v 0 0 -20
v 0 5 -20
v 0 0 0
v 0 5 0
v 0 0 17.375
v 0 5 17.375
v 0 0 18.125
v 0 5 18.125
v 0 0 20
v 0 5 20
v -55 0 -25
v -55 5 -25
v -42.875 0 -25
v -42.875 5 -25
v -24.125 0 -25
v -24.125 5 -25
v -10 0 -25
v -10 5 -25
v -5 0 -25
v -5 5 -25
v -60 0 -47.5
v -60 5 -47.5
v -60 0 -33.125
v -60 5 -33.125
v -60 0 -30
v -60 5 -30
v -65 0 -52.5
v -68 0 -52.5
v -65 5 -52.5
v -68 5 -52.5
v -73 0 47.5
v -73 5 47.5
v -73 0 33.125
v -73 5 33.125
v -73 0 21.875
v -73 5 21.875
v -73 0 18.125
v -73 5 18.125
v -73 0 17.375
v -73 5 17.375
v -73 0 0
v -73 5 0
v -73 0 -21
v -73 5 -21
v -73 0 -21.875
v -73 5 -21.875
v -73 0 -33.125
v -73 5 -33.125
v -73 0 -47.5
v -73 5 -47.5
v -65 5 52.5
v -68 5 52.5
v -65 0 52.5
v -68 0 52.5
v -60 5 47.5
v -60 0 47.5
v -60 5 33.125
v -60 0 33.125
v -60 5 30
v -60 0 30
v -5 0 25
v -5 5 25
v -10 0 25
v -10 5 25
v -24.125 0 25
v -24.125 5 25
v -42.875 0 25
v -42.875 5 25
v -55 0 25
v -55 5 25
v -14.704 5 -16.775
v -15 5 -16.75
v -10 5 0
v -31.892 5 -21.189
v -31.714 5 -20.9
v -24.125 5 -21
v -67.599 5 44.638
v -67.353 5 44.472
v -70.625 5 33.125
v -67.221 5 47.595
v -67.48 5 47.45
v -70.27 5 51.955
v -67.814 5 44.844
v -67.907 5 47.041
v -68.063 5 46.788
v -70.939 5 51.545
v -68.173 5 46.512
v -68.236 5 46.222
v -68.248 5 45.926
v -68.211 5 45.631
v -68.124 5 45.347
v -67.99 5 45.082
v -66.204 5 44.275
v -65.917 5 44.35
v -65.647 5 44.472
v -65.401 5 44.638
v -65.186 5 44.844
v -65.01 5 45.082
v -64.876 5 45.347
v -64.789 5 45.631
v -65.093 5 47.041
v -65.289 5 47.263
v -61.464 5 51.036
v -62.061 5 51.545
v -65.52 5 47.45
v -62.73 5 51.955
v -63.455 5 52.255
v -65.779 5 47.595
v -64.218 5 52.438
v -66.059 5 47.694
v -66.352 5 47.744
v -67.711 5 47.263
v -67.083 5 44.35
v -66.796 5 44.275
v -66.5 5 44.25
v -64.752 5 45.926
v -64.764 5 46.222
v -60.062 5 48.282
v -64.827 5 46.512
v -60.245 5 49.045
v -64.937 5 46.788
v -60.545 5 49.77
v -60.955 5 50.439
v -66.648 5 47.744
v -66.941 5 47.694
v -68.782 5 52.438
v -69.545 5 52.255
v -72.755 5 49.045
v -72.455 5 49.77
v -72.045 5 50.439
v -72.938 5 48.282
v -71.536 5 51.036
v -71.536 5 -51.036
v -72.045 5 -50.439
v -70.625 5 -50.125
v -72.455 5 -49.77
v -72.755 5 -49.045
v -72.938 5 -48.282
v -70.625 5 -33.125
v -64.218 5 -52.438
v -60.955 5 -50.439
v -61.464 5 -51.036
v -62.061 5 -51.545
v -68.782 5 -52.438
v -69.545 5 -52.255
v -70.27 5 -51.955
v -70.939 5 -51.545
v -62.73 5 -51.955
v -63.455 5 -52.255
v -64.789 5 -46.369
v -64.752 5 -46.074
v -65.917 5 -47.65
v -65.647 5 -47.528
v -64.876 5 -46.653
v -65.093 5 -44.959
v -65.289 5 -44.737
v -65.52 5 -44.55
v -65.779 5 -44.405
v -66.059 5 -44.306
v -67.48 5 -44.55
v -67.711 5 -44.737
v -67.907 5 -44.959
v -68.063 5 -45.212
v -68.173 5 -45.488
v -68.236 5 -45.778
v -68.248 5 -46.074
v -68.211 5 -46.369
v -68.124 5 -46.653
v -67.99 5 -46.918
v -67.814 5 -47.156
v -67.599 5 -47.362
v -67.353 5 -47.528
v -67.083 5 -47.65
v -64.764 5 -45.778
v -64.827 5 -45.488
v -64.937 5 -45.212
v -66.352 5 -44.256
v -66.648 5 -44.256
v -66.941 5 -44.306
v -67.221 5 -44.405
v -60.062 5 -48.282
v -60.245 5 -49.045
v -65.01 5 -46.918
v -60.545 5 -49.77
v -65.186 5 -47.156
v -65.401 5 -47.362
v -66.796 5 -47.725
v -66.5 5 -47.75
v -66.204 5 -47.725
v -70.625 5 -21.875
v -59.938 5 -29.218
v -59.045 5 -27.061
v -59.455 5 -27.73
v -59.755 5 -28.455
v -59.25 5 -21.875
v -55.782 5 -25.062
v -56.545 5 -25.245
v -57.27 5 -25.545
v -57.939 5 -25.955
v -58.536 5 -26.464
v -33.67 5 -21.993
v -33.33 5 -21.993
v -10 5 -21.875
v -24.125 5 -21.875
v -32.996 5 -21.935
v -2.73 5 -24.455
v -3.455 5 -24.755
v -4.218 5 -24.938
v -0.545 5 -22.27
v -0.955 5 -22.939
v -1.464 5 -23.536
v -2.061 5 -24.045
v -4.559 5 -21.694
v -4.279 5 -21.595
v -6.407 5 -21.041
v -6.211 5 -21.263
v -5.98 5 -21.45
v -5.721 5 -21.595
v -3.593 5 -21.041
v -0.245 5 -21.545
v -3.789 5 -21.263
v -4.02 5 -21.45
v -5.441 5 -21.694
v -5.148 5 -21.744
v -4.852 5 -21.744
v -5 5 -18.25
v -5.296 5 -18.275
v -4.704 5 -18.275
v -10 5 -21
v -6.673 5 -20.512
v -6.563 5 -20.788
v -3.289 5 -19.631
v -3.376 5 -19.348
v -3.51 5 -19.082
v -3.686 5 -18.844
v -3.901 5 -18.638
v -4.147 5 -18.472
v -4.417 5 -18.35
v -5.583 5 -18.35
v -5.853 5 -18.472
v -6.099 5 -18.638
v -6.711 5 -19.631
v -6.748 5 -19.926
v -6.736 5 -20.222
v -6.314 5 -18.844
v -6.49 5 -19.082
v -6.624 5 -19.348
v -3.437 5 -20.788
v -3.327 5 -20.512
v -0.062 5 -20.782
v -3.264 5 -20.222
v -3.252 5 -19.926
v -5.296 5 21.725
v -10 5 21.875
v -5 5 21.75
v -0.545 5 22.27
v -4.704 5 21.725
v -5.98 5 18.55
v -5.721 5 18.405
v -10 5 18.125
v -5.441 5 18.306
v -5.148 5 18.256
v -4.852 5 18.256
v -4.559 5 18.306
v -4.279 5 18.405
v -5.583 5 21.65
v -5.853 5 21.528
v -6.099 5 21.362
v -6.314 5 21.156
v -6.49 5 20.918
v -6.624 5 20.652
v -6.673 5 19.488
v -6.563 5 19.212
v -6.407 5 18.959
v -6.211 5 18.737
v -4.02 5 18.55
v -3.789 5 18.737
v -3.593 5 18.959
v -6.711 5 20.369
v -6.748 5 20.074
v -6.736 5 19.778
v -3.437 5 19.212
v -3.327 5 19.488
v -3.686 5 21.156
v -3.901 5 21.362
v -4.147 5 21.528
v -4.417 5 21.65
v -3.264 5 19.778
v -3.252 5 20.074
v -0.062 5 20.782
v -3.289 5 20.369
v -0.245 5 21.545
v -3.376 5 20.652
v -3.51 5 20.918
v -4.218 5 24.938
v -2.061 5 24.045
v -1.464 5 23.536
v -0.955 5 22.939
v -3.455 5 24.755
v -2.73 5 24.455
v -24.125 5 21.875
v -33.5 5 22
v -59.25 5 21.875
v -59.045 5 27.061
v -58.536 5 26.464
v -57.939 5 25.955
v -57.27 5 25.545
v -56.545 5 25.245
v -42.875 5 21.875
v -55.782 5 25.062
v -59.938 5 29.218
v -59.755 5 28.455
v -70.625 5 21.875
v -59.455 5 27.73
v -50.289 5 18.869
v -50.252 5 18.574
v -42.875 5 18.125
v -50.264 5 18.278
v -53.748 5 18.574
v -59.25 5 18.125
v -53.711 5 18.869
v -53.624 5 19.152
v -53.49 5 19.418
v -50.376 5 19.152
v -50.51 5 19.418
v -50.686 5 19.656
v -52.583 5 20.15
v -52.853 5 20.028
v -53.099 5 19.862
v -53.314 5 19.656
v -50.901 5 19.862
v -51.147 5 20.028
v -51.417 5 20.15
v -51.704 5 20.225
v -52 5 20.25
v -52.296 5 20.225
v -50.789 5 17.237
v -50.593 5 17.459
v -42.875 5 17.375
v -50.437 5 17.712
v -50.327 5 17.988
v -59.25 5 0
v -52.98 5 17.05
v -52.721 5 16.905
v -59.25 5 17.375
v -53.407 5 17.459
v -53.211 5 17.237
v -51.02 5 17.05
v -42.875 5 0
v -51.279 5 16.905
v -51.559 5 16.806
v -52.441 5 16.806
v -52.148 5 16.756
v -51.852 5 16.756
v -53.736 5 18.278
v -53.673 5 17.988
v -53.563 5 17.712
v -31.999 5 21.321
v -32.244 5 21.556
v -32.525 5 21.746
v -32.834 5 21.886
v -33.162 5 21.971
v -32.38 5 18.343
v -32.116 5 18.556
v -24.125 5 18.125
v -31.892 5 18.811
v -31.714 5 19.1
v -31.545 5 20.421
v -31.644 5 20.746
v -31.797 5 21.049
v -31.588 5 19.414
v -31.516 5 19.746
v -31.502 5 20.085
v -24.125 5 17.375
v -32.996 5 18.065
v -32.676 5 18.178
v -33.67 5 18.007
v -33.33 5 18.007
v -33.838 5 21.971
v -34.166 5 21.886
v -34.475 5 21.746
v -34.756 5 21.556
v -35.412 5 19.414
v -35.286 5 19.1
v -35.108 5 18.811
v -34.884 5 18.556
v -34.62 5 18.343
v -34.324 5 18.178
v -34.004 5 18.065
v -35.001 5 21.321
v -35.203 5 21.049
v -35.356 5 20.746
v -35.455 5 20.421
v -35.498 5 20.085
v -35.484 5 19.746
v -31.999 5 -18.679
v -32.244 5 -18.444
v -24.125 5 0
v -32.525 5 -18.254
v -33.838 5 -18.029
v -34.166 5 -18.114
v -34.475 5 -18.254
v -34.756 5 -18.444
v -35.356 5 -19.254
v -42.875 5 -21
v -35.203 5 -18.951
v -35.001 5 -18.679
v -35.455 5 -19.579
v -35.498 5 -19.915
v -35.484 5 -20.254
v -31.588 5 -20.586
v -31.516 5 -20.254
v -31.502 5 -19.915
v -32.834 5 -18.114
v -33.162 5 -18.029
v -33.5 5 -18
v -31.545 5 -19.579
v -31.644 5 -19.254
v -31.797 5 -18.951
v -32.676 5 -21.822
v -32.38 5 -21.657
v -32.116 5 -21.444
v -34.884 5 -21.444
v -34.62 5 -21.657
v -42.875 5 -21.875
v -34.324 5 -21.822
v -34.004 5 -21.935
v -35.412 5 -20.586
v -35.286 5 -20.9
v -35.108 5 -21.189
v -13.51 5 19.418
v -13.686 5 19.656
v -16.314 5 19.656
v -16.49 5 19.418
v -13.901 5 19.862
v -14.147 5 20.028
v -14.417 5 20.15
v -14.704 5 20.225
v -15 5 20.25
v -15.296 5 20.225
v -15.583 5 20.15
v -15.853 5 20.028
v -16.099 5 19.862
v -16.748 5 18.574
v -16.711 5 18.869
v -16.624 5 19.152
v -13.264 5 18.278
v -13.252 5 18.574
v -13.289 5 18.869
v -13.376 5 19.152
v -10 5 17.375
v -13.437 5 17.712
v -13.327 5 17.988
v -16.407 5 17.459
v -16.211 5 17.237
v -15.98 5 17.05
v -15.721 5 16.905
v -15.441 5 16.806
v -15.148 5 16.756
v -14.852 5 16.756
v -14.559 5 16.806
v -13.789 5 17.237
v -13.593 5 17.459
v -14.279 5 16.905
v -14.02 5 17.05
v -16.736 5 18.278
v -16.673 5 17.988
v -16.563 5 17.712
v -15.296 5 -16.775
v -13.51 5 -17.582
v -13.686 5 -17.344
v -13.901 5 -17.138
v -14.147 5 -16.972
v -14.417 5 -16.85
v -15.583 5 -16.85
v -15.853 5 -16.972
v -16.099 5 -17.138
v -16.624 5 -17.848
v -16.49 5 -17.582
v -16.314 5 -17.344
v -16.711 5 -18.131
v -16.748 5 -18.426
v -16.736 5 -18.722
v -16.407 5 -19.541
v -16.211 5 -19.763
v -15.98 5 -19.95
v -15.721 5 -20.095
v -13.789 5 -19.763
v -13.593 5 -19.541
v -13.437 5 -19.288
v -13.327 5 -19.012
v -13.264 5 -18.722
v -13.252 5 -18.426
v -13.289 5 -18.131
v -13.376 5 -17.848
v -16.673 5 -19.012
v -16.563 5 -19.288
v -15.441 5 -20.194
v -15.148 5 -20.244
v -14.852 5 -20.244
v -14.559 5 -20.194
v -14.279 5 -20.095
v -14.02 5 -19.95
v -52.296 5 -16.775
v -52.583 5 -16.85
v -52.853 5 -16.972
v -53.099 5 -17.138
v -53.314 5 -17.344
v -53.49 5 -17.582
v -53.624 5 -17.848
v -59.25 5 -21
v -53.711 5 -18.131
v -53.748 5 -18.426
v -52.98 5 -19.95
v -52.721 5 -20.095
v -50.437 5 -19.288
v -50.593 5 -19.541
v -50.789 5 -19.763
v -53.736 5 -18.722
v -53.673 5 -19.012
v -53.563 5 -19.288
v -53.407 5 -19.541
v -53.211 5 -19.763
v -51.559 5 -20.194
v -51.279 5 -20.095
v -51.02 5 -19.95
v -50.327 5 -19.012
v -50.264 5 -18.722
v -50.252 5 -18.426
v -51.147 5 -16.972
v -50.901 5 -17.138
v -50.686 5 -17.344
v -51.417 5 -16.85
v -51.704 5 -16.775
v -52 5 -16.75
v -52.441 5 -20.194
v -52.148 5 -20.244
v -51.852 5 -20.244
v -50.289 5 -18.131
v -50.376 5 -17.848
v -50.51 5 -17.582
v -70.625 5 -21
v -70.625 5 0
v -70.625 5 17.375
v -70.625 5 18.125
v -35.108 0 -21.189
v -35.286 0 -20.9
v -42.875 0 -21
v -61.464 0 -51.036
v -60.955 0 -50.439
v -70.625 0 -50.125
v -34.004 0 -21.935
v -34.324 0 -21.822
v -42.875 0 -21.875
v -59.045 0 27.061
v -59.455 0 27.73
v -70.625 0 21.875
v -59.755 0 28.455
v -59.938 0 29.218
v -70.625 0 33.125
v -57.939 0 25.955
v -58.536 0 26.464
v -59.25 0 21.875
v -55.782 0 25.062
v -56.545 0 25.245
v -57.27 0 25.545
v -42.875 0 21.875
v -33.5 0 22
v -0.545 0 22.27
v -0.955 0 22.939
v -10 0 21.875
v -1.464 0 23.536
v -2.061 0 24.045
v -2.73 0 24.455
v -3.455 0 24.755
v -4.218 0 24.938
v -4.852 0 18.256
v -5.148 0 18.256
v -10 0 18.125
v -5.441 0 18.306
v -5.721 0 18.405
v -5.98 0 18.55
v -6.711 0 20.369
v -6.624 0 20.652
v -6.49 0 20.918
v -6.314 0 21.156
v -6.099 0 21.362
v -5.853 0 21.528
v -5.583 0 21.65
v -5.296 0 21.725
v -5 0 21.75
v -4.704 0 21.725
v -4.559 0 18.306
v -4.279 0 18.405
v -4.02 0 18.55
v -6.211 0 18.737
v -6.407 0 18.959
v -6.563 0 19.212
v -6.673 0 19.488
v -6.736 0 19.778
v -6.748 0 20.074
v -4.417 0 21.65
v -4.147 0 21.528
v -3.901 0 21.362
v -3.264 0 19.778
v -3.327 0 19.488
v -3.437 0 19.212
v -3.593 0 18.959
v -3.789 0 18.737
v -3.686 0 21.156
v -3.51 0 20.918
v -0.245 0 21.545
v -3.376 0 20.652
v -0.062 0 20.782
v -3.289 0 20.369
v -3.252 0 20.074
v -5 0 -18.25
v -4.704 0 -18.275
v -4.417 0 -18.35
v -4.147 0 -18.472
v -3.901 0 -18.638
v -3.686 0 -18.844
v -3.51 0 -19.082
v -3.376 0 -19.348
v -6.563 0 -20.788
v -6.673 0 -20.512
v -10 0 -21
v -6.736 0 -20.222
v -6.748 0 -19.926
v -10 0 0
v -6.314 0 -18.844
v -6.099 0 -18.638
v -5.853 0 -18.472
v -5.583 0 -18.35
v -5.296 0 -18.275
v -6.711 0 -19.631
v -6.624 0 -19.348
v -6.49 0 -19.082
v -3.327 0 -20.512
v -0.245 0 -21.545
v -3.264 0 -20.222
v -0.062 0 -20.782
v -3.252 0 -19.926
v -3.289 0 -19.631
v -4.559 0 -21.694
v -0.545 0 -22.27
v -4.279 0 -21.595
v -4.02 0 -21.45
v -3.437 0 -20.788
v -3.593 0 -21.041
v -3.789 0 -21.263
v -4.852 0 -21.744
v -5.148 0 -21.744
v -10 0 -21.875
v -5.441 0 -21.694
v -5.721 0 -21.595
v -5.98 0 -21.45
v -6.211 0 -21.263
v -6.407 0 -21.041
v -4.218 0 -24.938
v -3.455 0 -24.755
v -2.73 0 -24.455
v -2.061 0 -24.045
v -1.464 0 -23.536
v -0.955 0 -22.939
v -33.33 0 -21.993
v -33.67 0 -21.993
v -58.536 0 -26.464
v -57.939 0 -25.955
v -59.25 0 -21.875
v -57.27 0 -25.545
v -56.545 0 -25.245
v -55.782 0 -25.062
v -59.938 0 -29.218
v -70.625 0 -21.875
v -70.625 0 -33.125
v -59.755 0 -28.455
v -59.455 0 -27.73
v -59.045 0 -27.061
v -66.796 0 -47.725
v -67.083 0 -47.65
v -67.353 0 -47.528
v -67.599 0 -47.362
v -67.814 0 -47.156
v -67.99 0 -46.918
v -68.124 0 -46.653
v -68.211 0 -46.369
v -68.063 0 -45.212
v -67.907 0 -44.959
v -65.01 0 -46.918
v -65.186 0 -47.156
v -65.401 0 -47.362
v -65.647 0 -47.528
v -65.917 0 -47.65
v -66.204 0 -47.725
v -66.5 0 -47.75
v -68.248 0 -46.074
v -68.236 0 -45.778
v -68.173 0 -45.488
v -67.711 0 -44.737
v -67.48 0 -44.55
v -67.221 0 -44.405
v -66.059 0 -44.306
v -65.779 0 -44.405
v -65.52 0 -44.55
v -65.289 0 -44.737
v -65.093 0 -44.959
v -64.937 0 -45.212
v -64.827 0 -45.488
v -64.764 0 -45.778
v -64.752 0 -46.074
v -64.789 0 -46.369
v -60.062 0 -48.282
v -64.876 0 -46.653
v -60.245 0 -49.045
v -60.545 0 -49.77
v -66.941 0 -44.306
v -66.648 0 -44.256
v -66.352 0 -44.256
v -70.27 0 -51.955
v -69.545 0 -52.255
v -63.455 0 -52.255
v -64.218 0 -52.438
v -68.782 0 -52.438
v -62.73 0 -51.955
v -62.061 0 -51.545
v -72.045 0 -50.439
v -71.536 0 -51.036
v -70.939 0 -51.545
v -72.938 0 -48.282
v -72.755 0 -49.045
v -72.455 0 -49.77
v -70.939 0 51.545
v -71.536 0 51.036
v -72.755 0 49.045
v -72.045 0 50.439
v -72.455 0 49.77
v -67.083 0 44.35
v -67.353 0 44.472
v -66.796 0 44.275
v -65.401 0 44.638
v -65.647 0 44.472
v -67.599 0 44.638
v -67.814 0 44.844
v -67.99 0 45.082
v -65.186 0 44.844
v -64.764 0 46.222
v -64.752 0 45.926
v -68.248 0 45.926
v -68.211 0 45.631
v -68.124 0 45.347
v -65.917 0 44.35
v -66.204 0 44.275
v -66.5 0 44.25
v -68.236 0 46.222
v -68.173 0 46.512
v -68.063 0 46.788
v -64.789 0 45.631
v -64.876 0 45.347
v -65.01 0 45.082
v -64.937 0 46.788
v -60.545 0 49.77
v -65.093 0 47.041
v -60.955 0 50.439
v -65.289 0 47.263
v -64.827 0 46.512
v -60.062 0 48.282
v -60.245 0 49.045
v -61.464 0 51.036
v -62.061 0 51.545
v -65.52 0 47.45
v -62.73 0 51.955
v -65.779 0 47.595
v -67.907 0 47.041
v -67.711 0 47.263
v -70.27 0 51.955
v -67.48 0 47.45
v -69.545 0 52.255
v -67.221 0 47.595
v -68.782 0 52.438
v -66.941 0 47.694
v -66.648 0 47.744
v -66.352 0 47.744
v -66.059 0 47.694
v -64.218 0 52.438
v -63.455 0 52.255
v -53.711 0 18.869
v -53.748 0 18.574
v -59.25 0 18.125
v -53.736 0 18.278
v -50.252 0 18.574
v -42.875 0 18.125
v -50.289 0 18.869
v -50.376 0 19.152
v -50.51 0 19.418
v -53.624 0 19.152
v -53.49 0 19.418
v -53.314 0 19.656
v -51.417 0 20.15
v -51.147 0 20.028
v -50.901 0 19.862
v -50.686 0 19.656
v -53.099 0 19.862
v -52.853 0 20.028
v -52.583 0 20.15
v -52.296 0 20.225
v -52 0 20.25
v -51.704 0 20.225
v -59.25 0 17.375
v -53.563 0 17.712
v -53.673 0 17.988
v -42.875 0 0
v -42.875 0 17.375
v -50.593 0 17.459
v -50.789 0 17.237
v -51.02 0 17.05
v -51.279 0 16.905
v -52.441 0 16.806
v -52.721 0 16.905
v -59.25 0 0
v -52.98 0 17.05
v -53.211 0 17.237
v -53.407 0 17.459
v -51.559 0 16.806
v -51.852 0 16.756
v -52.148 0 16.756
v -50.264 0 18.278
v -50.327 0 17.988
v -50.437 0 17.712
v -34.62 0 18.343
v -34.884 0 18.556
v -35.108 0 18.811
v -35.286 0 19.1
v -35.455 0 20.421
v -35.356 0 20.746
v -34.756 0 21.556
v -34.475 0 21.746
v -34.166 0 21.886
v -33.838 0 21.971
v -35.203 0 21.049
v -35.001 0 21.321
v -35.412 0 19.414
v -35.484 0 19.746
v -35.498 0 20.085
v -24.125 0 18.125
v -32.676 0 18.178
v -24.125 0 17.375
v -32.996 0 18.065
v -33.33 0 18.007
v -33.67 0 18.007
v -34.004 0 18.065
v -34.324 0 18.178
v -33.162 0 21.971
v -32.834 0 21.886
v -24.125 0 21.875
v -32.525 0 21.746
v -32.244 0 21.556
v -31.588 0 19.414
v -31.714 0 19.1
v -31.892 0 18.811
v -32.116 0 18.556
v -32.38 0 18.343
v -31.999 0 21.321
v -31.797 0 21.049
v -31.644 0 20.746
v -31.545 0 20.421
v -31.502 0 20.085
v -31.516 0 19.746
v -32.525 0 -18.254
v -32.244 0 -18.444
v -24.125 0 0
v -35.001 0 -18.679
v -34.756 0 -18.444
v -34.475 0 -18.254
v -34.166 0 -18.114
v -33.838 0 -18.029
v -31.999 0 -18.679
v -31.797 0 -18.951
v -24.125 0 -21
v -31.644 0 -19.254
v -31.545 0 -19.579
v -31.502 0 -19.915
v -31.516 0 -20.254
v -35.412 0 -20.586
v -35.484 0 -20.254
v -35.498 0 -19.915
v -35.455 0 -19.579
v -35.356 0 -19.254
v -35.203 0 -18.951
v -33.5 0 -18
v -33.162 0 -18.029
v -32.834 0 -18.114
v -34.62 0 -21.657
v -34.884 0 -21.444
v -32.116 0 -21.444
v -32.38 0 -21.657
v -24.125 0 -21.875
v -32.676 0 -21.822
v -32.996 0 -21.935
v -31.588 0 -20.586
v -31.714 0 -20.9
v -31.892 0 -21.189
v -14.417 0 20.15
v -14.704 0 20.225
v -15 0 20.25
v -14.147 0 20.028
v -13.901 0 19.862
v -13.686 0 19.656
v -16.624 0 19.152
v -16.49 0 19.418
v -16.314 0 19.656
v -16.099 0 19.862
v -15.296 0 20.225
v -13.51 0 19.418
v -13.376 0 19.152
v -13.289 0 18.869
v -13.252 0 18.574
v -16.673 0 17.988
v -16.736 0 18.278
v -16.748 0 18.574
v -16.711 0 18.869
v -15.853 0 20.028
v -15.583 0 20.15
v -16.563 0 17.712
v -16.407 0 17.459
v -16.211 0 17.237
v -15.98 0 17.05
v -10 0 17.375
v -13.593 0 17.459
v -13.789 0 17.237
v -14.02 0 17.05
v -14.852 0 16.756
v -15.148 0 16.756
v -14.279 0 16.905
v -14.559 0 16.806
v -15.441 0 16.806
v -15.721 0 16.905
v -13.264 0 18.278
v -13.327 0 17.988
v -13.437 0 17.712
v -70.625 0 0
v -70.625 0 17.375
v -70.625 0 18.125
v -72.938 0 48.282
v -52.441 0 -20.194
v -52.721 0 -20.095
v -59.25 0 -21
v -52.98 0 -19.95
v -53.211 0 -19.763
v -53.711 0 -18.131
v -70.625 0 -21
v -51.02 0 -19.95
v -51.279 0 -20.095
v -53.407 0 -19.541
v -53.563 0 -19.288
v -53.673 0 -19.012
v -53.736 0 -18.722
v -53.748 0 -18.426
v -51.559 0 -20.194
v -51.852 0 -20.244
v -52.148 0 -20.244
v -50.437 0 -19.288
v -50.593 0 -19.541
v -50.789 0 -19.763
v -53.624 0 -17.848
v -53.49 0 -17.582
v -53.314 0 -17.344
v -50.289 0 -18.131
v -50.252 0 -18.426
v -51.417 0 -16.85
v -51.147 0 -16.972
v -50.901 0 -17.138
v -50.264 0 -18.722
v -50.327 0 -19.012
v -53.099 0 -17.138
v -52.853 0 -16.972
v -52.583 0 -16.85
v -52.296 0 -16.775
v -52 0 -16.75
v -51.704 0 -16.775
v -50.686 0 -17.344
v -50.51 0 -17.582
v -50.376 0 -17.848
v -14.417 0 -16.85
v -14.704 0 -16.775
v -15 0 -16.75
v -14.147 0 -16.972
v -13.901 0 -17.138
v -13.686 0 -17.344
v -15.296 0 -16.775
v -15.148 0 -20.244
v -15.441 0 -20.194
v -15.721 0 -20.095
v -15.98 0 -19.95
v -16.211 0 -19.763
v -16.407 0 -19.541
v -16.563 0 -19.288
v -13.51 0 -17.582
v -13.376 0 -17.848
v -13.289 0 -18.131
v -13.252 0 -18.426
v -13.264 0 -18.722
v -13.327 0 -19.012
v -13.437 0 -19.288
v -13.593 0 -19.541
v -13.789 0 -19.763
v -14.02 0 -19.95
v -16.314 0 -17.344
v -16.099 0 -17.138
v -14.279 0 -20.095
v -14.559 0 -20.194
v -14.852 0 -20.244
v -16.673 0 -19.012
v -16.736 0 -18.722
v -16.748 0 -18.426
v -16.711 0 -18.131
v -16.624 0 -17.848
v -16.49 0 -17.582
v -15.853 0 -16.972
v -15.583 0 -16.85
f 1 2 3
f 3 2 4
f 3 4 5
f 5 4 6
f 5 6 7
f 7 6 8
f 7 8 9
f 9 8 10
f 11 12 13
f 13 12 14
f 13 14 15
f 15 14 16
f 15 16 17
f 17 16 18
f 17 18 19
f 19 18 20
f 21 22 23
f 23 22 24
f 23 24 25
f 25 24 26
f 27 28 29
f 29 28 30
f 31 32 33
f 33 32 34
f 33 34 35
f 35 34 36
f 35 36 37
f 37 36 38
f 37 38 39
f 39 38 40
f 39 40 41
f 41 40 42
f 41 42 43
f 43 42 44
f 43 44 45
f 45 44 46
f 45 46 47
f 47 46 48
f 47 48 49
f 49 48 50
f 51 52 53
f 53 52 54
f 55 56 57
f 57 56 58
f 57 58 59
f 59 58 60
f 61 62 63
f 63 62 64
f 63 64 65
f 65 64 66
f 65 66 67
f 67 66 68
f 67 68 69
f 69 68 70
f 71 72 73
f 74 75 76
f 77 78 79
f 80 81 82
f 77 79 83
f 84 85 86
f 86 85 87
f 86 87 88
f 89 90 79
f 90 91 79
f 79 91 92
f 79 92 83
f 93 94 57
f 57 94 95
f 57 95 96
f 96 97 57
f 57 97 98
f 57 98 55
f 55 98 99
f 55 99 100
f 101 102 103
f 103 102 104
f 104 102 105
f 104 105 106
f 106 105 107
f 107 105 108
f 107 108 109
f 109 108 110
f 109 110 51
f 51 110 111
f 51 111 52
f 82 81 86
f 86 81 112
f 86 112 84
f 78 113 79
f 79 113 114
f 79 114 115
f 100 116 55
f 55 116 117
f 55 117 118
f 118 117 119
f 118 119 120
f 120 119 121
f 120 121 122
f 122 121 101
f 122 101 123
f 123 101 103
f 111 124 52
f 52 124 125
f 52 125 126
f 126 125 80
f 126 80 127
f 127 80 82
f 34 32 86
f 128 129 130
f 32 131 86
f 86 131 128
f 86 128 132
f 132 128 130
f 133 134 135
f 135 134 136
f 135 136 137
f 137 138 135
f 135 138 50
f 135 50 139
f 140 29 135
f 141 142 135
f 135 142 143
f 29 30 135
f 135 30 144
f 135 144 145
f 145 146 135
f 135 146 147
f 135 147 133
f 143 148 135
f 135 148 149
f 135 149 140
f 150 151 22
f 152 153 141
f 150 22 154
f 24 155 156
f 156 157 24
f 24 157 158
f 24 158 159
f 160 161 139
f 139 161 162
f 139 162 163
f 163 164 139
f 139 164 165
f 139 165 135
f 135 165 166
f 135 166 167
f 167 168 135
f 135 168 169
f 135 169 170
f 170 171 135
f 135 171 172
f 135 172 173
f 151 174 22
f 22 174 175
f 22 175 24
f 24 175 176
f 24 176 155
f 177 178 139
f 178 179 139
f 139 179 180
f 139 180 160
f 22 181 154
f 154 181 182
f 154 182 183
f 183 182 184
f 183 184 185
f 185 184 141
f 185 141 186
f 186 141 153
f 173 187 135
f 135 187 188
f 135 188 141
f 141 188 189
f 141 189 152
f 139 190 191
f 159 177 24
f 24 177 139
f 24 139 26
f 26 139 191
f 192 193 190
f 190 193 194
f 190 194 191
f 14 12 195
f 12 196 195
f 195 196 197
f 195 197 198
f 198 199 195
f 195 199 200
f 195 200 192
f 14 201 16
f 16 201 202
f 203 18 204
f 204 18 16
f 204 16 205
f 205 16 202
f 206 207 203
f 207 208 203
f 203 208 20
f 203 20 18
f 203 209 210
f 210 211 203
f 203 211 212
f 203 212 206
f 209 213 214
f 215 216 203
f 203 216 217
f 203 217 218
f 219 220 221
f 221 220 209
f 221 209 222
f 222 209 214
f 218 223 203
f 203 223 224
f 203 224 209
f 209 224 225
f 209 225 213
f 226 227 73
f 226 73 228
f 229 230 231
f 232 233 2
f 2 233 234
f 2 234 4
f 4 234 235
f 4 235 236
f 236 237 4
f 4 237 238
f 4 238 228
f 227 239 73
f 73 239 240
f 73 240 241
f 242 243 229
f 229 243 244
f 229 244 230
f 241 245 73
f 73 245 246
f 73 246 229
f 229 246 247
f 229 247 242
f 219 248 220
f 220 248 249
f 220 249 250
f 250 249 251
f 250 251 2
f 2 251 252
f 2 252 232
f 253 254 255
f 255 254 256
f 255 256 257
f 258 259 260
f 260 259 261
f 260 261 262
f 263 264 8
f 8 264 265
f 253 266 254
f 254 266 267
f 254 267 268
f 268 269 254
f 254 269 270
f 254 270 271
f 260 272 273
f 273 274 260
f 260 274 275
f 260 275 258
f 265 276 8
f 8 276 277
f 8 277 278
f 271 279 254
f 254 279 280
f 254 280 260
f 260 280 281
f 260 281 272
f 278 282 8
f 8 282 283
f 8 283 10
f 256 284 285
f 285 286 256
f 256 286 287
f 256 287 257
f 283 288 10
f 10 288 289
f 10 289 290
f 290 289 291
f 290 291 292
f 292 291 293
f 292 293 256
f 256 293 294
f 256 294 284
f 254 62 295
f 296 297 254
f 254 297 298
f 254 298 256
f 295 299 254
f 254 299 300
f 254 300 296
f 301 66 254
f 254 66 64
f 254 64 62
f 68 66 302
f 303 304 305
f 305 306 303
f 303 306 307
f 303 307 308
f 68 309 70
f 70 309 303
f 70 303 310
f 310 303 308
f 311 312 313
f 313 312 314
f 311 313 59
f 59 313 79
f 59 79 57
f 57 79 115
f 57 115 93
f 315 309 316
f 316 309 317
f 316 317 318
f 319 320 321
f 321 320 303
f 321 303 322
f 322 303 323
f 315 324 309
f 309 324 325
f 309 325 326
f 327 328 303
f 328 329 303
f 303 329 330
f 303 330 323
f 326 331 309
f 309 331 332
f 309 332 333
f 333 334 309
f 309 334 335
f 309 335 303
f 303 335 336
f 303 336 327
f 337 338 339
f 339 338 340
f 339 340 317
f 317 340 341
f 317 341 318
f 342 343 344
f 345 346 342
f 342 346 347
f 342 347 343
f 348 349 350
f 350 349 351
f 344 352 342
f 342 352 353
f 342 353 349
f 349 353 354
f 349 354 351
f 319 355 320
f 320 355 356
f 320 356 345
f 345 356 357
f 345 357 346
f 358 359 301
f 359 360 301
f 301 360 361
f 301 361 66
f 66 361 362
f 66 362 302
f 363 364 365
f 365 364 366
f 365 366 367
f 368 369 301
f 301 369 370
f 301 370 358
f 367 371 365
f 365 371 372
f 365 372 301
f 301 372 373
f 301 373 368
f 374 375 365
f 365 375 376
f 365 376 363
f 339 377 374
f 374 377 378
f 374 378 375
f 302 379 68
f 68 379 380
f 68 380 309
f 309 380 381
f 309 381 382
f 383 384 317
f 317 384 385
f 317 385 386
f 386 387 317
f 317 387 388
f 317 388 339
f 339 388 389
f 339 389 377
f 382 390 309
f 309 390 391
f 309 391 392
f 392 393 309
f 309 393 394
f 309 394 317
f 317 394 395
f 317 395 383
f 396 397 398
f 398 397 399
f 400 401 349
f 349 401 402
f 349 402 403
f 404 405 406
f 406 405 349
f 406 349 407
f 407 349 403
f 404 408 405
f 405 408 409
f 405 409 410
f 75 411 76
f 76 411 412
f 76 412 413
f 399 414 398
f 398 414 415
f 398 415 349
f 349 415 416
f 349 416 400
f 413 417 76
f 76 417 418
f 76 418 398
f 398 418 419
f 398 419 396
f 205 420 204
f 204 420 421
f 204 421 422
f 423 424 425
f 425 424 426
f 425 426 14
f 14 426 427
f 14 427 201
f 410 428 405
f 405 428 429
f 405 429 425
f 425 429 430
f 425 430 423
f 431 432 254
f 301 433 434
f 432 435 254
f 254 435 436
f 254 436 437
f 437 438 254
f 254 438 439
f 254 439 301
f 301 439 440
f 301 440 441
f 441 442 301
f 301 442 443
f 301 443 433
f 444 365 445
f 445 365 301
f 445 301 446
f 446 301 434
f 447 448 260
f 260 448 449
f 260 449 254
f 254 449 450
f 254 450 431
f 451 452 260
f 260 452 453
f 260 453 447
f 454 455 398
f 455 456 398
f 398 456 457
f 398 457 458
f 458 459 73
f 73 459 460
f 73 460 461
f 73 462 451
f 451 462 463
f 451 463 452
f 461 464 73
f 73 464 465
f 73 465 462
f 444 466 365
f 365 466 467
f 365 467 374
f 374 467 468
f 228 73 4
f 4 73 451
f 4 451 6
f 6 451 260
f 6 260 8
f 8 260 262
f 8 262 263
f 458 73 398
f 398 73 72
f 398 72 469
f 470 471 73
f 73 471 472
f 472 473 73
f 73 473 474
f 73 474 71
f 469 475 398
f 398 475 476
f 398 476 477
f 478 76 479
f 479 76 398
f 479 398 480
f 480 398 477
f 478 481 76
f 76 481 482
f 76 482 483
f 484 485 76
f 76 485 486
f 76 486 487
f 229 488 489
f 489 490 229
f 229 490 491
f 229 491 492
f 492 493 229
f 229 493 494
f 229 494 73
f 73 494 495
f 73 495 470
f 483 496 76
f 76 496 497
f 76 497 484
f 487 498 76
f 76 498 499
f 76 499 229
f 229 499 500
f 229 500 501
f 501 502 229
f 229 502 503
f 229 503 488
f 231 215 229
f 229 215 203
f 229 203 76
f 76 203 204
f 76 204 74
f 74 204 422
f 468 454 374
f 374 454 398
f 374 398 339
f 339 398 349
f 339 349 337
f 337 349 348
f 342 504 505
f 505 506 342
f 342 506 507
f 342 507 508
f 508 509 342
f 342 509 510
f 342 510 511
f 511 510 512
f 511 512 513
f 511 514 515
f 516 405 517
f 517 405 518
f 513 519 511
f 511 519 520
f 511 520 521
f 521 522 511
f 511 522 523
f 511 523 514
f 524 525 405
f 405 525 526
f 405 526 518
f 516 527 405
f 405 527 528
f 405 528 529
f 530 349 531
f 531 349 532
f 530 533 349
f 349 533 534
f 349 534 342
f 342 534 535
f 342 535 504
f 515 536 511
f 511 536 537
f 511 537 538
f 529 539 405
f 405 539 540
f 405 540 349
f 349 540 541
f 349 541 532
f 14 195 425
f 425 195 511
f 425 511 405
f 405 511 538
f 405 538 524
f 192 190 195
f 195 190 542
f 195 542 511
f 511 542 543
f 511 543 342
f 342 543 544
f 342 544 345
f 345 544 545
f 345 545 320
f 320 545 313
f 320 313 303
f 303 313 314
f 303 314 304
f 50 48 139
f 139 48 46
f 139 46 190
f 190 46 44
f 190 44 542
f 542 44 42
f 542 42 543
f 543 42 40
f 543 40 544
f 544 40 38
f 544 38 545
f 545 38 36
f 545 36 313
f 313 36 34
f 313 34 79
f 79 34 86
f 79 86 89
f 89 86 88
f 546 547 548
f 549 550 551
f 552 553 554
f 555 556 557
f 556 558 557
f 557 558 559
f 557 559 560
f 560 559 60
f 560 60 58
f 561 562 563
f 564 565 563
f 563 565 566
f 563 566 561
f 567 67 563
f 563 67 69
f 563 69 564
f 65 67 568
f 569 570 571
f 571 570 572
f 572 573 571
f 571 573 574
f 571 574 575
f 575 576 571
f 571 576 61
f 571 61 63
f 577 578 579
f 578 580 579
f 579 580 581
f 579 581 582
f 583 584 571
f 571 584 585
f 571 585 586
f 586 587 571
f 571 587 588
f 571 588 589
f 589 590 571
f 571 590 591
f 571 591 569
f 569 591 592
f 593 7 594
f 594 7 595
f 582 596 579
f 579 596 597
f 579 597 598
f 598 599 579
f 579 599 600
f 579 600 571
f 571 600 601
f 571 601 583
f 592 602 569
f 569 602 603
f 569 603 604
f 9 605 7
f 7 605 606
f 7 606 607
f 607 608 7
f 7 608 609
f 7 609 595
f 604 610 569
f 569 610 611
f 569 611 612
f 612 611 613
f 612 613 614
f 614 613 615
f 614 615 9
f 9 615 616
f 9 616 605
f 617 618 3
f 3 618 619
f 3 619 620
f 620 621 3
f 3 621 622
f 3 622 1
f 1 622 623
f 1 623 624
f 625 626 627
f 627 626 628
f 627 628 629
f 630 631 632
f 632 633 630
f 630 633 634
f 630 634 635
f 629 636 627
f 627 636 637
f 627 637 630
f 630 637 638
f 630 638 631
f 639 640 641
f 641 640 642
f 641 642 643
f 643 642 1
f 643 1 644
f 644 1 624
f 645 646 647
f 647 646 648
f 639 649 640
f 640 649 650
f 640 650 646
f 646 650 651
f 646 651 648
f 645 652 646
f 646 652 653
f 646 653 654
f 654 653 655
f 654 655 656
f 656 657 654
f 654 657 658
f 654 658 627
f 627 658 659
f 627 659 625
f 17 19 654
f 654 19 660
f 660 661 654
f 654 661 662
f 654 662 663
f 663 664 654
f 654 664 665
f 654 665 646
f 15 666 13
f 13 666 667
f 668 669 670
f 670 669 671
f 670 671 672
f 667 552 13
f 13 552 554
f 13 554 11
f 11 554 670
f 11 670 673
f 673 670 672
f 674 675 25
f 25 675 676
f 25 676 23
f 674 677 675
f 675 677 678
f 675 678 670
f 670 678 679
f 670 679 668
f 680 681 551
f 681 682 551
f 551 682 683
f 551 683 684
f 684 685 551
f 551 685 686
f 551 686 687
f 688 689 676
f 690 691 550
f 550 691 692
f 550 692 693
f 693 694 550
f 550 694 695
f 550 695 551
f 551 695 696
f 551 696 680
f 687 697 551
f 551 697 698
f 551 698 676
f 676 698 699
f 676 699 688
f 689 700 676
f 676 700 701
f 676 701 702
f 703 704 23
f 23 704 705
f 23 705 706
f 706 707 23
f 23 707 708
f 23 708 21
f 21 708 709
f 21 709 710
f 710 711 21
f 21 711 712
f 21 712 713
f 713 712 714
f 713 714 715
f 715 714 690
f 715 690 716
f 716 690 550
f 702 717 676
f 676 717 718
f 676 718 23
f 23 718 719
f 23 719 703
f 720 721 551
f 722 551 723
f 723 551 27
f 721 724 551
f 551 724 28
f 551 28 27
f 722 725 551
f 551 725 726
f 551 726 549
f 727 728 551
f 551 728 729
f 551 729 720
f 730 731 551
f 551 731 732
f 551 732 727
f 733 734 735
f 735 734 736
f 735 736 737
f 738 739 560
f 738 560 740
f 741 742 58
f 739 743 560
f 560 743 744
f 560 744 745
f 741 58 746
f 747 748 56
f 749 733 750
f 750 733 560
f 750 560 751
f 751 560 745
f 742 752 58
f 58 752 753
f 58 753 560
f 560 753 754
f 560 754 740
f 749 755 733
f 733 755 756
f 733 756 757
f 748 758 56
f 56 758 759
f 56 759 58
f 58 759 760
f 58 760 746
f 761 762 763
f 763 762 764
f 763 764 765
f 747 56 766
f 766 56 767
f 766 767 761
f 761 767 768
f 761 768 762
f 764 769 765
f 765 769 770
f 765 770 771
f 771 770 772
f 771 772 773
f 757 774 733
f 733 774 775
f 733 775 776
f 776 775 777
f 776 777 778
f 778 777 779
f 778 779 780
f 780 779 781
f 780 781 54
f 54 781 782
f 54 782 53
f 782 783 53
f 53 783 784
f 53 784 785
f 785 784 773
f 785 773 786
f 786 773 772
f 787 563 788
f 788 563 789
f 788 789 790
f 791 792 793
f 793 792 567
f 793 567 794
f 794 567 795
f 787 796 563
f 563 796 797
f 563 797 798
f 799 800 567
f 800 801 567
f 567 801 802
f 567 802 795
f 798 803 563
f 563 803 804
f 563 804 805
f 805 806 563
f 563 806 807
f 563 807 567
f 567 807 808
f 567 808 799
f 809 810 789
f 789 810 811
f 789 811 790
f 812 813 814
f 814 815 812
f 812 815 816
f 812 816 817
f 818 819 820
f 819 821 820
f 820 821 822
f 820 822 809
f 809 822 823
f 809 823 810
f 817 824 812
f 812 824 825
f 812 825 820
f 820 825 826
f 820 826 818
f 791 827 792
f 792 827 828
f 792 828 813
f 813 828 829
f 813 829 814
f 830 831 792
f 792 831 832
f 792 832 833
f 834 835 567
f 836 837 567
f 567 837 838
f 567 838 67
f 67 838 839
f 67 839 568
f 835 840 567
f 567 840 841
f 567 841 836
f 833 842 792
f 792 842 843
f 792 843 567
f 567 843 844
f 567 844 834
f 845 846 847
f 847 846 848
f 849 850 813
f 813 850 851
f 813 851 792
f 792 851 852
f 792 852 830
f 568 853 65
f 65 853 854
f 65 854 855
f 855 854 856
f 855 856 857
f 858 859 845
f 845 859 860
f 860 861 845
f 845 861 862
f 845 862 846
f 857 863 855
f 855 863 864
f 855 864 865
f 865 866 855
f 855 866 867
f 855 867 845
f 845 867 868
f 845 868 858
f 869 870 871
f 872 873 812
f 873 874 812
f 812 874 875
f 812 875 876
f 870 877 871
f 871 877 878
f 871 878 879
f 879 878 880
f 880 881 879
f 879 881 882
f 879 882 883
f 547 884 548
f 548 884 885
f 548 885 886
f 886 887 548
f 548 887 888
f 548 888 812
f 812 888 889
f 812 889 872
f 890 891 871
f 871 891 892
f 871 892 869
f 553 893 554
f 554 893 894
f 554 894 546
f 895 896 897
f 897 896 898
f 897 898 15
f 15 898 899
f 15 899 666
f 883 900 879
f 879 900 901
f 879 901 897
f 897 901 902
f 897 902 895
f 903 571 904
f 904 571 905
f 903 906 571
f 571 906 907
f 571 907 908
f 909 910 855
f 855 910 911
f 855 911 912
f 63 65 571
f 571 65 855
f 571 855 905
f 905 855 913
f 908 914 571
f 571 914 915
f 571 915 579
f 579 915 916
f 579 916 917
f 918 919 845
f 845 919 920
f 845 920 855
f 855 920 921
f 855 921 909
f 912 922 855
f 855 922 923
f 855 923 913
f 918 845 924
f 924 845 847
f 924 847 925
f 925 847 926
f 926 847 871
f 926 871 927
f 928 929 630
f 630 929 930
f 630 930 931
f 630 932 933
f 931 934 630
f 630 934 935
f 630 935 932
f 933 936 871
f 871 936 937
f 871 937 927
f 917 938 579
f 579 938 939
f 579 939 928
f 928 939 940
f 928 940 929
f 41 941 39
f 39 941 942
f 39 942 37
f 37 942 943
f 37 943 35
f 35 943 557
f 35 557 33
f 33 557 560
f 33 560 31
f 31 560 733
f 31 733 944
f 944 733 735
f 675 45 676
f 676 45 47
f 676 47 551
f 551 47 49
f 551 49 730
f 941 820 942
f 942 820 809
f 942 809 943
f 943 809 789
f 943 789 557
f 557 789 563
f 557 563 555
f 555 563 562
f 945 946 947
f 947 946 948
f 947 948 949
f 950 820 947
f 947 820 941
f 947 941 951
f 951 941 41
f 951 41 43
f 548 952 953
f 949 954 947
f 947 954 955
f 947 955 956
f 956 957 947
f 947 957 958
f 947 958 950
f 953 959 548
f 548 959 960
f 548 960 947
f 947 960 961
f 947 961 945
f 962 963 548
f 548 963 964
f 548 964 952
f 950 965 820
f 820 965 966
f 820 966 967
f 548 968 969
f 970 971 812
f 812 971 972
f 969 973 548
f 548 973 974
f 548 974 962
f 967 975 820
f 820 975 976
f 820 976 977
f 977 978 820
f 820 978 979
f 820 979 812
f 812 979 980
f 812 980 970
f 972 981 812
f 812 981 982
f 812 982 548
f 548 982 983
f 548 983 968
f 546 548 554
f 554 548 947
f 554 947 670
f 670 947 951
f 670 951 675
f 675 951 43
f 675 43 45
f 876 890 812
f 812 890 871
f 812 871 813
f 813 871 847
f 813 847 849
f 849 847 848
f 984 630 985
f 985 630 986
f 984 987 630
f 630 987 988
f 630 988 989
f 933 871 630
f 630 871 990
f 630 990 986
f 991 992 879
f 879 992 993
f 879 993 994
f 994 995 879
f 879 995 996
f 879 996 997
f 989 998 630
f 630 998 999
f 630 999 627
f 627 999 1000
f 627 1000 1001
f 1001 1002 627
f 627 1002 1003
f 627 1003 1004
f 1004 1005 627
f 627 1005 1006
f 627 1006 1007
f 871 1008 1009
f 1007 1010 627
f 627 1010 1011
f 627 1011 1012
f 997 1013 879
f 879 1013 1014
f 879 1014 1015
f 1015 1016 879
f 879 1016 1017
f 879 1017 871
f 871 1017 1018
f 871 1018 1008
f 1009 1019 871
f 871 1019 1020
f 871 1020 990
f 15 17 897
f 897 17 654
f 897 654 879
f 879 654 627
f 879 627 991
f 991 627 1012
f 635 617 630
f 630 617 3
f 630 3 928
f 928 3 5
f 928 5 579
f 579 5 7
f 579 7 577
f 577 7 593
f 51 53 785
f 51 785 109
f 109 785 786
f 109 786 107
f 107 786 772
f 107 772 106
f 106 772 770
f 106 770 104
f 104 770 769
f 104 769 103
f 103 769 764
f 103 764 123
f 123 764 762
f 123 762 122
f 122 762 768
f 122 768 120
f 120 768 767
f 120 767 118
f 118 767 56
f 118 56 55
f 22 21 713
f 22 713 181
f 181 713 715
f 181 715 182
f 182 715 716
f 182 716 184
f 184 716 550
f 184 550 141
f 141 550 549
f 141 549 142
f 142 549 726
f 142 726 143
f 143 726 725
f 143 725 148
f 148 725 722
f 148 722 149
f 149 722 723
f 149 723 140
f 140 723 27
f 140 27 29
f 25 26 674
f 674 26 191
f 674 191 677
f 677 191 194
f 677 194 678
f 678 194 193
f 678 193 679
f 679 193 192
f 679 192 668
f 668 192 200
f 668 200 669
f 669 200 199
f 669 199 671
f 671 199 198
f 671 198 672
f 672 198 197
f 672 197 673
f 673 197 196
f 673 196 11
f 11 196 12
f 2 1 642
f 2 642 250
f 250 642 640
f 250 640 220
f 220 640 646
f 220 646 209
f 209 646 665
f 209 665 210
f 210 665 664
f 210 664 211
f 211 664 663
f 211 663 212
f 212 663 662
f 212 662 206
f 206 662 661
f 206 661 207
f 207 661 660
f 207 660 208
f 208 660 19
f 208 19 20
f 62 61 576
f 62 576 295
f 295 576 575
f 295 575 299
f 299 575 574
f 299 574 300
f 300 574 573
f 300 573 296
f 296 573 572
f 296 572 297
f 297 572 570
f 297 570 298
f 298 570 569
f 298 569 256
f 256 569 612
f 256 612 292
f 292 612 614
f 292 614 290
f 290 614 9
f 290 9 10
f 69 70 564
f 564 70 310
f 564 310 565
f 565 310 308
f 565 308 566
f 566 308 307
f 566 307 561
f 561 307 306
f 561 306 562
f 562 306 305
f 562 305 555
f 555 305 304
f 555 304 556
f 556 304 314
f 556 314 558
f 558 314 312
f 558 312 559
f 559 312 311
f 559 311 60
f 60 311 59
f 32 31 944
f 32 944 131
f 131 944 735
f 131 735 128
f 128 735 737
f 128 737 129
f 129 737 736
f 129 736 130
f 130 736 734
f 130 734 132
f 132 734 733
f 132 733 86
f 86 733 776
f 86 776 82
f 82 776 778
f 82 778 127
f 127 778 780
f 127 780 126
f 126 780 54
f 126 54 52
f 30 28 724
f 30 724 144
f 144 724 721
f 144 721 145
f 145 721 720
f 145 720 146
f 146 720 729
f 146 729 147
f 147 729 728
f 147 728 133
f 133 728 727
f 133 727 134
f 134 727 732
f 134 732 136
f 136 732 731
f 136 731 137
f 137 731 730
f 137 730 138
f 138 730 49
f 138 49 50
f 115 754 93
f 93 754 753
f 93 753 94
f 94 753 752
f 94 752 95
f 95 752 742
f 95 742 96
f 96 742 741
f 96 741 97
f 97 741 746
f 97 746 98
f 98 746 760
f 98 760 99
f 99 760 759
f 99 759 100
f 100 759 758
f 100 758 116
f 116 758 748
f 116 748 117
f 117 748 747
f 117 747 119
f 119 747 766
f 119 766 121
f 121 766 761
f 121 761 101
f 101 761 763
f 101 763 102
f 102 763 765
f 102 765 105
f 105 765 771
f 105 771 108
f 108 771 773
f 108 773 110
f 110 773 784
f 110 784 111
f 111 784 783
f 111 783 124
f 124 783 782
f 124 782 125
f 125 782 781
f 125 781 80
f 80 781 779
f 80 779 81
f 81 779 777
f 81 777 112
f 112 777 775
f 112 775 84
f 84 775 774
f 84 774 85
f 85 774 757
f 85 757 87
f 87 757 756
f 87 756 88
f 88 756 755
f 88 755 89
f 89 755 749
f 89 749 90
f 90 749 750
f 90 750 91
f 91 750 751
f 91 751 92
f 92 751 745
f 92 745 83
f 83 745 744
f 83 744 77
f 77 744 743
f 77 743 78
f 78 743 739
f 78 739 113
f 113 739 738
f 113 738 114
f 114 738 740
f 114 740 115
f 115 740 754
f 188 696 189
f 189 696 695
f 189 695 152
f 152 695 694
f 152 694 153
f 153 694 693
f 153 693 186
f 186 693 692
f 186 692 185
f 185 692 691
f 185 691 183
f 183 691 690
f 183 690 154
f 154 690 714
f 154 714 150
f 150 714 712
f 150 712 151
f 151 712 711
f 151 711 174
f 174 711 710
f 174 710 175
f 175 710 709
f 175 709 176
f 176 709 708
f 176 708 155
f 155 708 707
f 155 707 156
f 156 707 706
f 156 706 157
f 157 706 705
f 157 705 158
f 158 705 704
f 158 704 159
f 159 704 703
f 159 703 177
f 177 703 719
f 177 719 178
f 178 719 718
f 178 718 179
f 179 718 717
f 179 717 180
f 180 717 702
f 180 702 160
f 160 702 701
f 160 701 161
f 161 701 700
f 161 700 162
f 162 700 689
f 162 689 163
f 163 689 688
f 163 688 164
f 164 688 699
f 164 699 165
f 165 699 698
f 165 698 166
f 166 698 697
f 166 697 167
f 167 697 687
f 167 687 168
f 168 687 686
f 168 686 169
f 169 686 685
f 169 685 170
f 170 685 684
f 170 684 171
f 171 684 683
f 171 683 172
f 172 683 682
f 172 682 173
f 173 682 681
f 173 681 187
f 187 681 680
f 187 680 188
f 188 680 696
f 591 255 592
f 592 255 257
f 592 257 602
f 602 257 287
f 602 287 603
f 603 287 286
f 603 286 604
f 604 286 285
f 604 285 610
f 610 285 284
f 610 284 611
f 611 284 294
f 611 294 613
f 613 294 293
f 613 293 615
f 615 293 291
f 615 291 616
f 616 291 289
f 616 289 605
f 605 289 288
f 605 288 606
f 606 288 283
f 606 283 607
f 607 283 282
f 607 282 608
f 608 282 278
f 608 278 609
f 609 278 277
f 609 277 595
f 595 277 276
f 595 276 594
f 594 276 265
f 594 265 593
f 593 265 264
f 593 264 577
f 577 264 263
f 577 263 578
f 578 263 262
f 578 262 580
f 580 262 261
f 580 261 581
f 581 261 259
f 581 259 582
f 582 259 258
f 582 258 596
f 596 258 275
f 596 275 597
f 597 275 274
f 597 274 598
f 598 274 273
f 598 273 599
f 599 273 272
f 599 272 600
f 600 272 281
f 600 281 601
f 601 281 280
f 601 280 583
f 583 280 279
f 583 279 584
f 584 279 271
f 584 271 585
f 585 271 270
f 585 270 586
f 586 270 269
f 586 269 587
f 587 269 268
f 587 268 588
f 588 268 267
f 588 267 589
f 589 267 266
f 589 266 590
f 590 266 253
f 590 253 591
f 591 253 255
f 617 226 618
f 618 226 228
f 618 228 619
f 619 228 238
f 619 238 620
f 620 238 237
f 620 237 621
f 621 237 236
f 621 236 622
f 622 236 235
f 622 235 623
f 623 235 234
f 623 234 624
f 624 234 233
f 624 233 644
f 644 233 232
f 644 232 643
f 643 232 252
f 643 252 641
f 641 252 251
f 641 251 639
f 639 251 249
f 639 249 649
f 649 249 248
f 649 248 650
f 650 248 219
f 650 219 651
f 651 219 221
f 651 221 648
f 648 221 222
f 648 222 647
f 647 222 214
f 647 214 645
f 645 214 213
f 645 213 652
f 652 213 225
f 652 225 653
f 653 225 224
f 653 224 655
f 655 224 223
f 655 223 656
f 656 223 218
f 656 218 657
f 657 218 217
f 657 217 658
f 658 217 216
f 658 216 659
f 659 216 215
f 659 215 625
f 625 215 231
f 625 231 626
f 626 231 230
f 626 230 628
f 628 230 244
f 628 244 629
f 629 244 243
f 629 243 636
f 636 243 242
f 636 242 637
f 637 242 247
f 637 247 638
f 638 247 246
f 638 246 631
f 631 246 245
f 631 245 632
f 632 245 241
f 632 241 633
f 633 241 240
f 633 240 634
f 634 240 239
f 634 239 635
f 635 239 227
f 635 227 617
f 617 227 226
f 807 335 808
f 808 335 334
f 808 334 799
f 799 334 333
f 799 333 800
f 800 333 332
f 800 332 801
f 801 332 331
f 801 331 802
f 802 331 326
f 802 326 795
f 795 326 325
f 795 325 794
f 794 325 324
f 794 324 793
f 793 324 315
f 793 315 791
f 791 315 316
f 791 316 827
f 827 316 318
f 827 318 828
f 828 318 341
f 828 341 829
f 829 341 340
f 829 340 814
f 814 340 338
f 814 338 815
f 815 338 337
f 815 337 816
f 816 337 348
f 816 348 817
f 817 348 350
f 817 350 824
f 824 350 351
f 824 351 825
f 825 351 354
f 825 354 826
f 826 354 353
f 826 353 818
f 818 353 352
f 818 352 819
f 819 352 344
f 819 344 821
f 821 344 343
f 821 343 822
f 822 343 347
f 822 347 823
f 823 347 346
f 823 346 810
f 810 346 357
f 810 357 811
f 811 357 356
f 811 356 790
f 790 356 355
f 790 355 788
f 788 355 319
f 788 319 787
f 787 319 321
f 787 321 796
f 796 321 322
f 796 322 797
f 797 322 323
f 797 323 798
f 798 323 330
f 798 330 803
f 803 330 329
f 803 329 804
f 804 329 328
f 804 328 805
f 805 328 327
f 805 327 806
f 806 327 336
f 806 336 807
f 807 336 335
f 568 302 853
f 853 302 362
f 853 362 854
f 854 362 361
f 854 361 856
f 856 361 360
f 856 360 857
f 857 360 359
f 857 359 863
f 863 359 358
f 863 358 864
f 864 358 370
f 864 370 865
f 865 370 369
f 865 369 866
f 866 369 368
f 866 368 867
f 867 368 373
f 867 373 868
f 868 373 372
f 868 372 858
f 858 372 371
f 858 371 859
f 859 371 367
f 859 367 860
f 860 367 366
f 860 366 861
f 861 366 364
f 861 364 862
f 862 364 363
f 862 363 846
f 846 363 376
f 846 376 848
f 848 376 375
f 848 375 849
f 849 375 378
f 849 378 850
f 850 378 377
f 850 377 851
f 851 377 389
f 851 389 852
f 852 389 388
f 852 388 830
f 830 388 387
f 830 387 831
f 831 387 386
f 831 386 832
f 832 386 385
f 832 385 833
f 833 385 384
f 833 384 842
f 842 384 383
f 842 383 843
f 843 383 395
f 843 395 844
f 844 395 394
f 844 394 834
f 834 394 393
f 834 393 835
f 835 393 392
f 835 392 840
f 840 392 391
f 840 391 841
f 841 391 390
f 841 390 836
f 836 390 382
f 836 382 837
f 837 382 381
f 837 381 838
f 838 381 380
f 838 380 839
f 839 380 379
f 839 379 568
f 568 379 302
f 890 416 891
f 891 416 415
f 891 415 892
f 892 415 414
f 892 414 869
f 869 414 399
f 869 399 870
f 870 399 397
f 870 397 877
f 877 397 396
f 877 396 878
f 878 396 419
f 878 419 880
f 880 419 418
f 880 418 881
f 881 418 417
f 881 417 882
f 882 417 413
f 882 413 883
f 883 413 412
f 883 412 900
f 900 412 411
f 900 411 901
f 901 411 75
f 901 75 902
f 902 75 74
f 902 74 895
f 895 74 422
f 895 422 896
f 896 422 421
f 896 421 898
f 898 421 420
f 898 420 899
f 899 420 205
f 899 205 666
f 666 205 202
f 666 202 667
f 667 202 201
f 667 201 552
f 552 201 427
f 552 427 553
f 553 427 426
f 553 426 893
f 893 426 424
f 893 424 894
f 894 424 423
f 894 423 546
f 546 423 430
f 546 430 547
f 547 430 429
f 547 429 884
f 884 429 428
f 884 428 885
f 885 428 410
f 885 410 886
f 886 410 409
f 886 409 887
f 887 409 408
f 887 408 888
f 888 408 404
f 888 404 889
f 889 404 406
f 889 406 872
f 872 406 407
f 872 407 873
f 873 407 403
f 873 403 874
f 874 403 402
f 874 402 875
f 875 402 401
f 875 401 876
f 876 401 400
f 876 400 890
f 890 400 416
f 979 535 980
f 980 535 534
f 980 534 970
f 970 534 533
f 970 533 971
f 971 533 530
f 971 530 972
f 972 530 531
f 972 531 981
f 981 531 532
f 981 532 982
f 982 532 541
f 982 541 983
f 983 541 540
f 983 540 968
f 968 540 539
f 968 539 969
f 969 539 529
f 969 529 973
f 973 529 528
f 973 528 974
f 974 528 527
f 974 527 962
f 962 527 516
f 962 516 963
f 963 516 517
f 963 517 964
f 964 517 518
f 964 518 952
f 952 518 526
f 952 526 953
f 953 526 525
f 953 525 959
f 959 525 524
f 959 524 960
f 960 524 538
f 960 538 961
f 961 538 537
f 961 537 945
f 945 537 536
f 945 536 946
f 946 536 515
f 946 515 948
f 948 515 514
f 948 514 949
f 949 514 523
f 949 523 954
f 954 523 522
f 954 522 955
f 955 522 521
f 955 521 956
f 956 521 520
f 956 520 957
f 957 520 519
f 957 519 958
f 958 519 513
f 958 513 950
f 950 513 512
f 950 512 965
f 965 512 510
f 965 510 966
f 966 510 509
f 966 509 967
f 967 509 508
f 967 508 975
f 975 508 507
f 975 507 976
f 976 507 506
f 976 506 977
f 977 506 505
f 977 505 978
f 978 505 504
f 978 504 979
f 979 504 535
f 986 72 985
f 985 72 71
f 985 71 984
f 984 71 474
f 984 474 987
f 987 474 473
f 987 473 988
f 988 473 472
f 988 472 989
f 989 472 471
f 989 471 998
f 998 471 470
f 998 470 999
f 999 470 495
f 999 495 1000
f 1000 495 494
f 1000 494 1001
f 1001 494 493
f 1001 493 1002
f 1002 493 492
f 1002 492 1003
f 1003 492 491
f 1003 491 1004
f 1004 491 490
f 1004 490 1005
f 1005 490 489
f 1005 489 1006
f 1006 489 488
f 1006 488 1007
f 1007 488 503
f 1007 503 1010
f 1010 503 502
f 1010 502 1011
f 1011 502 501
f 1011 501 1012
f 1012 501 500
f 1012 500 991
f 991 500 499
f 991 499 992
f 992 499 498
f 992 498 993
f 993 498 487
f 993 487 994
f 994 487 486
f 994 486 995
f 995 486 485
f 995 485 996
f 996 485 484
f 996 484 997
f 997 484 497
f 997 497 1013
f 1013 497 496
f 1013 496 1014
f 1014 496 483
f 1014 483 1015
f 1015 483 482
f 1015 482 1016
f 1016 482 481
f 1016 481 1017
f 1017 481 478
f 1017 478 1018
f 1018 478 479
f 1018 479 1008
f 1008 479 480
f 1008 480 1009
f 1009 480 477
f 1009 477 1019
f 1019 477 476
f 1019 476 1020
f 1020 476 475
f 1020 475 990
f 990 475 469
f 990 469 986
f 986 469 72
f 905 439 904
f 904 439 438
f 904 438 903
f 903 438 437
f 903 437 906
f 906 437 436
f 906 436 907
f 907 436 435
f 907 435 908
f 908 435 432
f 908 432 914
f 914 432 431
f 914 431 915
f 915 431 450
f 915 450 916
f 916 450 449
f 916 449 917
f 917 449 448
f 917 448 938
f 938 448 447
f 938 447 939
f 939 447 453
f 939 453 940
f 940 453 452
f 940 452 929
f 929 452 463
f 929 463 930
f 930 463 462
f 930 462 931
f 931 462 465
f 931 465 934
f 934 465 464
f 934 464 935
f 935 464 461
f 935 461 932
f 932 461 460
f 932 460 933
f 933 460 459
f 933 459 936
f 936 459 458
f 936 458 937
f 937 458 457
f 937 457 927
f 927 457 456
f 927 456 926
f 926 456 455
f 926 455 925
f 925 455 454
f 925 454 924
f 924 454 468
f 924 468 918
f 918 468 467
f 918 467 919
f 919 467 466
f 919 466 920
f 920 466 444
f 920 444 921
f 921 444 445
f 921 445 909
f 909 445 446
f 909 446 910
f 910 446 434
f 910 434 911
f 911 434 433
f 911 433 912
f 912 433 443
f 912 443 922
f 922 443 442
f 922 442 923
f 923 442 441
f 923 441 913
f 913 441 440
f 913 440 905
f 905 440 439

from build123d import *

# Parameters (mm, degrees)
EXTRUDE_1_DEPTH     = 5
FILLET_1_R          = 5
SKETCH_7_R          = 1.75
CUT_EXTRUDE_5_DEPTH = 91.056926441
SKETCH_8_R          = 1.75
CUT_EXTRUDE_6_DEPTH = 91.056926441
SKETCH_9_R          = 1.75
SKETCH_9_R_2        = 2
CUT_EXTRUDE_7_DEPTH = 91.056926441


with BuildPart() as part:
    # 스케치2 → 보스-돌출1 (new body)
    with BuildSketch(Plane(origin=(0, 0, 0), x_dir=(1, 0, 0), z_dir=(0, 1, 0))):
        Polygon((-60, -25), (-60, -52.5), (-73, -52.5), (-73, 52.5), (-60, 52.5), (-60, 25), (0, 25), (0, -25), align=None)
    extrude(amount=EXTRUDE_1_DEPTH)

    # 필렛1
    fillet_1_edges = [part.edges().sort_by_distance(p)[0] for p in [
        (0, 2.5, 25),
        (-60, 2.5, 25),
        (-60, 2.5, 52.5),
        (-73, 2.5, 52.5),
        (-73, 2.5, -52.5),
        (-60, 2.5, -52.5),
        (-60, 2.5, -25),
        (0, 2.5, -25),
    ]]
    fillet(fillet_1_edges, radius=FILLET_1_R)

    # 스케치7 → 컷-돌출5 (cut, through all)
    with BuildSketch(Plane.XZ):
        with Locations(Location((-66.5, -46, 0), (0, 0, 270))):
            Circle(SKETCH_7_R)
        with Locations(Location((-66.5, 46, 0), (0, 0, 270))):
            Circle(SKETCH_7_R)
    extrude(amount=-CUT_EXTRUDE_5_DEPTH, mode=Mode.SUBTRACT)

    # 스케치8 → 컷-돌출6 (cut, through all)
    with BuildSketch(Plane(origin=(0, 5, 0), x_dir=(1, 0, 0), z_dir=(0, 1, 0))):
        with Locations(Location((-5, 20, 0), (0, 0, 270))):
            Circle(SKETCH_8_R)
        with Locations(Location((-5, -20, 0), (0, 0, 270))):
            Circle(SKETCH_8_R)
    extrude(amount=-CUT_EXTRUDE_6_DEPTH, mode=Mode.SUBTRACT)

    # 스케치9 → 컷-돌출7 (cut, through all)
    with BuildSketch(Plane(origin=(0, 5, 0), x_dir=(1, 0, 0), z_dir=(0, 1, 0))):
        with Locations(Location((-52, 18.5, 0), (0, 0, 270))):
            Circle(SKETCH_9_R)
        with Locations(Location((-52, -18.5, 0), (0, 0, 270))):
            Circle(SKETCH_9_R)
        with Locations(Location((-15, -18.5, 0), (0, 0, 270))):
            Circle(SKETCH_9_R)
        with Locations(Location((-15, 18.5, 0), (0, 0, 270))):
            Circle(SKETCH_9_R)
        with Locations(Location((-33.5, 20, 0), (0, 0, 270))):
            Circle(SKETCH_9_R_2)
        with Locations(Location((-33.5, -20, 0), (0, 0, 270))):
            Circle(SKETCH_9_R_2)
    extrude(amount=-CUT_EXTRUDE_7_DEPTH, mode=Mode.SUBTRACT)


solid = part.part
